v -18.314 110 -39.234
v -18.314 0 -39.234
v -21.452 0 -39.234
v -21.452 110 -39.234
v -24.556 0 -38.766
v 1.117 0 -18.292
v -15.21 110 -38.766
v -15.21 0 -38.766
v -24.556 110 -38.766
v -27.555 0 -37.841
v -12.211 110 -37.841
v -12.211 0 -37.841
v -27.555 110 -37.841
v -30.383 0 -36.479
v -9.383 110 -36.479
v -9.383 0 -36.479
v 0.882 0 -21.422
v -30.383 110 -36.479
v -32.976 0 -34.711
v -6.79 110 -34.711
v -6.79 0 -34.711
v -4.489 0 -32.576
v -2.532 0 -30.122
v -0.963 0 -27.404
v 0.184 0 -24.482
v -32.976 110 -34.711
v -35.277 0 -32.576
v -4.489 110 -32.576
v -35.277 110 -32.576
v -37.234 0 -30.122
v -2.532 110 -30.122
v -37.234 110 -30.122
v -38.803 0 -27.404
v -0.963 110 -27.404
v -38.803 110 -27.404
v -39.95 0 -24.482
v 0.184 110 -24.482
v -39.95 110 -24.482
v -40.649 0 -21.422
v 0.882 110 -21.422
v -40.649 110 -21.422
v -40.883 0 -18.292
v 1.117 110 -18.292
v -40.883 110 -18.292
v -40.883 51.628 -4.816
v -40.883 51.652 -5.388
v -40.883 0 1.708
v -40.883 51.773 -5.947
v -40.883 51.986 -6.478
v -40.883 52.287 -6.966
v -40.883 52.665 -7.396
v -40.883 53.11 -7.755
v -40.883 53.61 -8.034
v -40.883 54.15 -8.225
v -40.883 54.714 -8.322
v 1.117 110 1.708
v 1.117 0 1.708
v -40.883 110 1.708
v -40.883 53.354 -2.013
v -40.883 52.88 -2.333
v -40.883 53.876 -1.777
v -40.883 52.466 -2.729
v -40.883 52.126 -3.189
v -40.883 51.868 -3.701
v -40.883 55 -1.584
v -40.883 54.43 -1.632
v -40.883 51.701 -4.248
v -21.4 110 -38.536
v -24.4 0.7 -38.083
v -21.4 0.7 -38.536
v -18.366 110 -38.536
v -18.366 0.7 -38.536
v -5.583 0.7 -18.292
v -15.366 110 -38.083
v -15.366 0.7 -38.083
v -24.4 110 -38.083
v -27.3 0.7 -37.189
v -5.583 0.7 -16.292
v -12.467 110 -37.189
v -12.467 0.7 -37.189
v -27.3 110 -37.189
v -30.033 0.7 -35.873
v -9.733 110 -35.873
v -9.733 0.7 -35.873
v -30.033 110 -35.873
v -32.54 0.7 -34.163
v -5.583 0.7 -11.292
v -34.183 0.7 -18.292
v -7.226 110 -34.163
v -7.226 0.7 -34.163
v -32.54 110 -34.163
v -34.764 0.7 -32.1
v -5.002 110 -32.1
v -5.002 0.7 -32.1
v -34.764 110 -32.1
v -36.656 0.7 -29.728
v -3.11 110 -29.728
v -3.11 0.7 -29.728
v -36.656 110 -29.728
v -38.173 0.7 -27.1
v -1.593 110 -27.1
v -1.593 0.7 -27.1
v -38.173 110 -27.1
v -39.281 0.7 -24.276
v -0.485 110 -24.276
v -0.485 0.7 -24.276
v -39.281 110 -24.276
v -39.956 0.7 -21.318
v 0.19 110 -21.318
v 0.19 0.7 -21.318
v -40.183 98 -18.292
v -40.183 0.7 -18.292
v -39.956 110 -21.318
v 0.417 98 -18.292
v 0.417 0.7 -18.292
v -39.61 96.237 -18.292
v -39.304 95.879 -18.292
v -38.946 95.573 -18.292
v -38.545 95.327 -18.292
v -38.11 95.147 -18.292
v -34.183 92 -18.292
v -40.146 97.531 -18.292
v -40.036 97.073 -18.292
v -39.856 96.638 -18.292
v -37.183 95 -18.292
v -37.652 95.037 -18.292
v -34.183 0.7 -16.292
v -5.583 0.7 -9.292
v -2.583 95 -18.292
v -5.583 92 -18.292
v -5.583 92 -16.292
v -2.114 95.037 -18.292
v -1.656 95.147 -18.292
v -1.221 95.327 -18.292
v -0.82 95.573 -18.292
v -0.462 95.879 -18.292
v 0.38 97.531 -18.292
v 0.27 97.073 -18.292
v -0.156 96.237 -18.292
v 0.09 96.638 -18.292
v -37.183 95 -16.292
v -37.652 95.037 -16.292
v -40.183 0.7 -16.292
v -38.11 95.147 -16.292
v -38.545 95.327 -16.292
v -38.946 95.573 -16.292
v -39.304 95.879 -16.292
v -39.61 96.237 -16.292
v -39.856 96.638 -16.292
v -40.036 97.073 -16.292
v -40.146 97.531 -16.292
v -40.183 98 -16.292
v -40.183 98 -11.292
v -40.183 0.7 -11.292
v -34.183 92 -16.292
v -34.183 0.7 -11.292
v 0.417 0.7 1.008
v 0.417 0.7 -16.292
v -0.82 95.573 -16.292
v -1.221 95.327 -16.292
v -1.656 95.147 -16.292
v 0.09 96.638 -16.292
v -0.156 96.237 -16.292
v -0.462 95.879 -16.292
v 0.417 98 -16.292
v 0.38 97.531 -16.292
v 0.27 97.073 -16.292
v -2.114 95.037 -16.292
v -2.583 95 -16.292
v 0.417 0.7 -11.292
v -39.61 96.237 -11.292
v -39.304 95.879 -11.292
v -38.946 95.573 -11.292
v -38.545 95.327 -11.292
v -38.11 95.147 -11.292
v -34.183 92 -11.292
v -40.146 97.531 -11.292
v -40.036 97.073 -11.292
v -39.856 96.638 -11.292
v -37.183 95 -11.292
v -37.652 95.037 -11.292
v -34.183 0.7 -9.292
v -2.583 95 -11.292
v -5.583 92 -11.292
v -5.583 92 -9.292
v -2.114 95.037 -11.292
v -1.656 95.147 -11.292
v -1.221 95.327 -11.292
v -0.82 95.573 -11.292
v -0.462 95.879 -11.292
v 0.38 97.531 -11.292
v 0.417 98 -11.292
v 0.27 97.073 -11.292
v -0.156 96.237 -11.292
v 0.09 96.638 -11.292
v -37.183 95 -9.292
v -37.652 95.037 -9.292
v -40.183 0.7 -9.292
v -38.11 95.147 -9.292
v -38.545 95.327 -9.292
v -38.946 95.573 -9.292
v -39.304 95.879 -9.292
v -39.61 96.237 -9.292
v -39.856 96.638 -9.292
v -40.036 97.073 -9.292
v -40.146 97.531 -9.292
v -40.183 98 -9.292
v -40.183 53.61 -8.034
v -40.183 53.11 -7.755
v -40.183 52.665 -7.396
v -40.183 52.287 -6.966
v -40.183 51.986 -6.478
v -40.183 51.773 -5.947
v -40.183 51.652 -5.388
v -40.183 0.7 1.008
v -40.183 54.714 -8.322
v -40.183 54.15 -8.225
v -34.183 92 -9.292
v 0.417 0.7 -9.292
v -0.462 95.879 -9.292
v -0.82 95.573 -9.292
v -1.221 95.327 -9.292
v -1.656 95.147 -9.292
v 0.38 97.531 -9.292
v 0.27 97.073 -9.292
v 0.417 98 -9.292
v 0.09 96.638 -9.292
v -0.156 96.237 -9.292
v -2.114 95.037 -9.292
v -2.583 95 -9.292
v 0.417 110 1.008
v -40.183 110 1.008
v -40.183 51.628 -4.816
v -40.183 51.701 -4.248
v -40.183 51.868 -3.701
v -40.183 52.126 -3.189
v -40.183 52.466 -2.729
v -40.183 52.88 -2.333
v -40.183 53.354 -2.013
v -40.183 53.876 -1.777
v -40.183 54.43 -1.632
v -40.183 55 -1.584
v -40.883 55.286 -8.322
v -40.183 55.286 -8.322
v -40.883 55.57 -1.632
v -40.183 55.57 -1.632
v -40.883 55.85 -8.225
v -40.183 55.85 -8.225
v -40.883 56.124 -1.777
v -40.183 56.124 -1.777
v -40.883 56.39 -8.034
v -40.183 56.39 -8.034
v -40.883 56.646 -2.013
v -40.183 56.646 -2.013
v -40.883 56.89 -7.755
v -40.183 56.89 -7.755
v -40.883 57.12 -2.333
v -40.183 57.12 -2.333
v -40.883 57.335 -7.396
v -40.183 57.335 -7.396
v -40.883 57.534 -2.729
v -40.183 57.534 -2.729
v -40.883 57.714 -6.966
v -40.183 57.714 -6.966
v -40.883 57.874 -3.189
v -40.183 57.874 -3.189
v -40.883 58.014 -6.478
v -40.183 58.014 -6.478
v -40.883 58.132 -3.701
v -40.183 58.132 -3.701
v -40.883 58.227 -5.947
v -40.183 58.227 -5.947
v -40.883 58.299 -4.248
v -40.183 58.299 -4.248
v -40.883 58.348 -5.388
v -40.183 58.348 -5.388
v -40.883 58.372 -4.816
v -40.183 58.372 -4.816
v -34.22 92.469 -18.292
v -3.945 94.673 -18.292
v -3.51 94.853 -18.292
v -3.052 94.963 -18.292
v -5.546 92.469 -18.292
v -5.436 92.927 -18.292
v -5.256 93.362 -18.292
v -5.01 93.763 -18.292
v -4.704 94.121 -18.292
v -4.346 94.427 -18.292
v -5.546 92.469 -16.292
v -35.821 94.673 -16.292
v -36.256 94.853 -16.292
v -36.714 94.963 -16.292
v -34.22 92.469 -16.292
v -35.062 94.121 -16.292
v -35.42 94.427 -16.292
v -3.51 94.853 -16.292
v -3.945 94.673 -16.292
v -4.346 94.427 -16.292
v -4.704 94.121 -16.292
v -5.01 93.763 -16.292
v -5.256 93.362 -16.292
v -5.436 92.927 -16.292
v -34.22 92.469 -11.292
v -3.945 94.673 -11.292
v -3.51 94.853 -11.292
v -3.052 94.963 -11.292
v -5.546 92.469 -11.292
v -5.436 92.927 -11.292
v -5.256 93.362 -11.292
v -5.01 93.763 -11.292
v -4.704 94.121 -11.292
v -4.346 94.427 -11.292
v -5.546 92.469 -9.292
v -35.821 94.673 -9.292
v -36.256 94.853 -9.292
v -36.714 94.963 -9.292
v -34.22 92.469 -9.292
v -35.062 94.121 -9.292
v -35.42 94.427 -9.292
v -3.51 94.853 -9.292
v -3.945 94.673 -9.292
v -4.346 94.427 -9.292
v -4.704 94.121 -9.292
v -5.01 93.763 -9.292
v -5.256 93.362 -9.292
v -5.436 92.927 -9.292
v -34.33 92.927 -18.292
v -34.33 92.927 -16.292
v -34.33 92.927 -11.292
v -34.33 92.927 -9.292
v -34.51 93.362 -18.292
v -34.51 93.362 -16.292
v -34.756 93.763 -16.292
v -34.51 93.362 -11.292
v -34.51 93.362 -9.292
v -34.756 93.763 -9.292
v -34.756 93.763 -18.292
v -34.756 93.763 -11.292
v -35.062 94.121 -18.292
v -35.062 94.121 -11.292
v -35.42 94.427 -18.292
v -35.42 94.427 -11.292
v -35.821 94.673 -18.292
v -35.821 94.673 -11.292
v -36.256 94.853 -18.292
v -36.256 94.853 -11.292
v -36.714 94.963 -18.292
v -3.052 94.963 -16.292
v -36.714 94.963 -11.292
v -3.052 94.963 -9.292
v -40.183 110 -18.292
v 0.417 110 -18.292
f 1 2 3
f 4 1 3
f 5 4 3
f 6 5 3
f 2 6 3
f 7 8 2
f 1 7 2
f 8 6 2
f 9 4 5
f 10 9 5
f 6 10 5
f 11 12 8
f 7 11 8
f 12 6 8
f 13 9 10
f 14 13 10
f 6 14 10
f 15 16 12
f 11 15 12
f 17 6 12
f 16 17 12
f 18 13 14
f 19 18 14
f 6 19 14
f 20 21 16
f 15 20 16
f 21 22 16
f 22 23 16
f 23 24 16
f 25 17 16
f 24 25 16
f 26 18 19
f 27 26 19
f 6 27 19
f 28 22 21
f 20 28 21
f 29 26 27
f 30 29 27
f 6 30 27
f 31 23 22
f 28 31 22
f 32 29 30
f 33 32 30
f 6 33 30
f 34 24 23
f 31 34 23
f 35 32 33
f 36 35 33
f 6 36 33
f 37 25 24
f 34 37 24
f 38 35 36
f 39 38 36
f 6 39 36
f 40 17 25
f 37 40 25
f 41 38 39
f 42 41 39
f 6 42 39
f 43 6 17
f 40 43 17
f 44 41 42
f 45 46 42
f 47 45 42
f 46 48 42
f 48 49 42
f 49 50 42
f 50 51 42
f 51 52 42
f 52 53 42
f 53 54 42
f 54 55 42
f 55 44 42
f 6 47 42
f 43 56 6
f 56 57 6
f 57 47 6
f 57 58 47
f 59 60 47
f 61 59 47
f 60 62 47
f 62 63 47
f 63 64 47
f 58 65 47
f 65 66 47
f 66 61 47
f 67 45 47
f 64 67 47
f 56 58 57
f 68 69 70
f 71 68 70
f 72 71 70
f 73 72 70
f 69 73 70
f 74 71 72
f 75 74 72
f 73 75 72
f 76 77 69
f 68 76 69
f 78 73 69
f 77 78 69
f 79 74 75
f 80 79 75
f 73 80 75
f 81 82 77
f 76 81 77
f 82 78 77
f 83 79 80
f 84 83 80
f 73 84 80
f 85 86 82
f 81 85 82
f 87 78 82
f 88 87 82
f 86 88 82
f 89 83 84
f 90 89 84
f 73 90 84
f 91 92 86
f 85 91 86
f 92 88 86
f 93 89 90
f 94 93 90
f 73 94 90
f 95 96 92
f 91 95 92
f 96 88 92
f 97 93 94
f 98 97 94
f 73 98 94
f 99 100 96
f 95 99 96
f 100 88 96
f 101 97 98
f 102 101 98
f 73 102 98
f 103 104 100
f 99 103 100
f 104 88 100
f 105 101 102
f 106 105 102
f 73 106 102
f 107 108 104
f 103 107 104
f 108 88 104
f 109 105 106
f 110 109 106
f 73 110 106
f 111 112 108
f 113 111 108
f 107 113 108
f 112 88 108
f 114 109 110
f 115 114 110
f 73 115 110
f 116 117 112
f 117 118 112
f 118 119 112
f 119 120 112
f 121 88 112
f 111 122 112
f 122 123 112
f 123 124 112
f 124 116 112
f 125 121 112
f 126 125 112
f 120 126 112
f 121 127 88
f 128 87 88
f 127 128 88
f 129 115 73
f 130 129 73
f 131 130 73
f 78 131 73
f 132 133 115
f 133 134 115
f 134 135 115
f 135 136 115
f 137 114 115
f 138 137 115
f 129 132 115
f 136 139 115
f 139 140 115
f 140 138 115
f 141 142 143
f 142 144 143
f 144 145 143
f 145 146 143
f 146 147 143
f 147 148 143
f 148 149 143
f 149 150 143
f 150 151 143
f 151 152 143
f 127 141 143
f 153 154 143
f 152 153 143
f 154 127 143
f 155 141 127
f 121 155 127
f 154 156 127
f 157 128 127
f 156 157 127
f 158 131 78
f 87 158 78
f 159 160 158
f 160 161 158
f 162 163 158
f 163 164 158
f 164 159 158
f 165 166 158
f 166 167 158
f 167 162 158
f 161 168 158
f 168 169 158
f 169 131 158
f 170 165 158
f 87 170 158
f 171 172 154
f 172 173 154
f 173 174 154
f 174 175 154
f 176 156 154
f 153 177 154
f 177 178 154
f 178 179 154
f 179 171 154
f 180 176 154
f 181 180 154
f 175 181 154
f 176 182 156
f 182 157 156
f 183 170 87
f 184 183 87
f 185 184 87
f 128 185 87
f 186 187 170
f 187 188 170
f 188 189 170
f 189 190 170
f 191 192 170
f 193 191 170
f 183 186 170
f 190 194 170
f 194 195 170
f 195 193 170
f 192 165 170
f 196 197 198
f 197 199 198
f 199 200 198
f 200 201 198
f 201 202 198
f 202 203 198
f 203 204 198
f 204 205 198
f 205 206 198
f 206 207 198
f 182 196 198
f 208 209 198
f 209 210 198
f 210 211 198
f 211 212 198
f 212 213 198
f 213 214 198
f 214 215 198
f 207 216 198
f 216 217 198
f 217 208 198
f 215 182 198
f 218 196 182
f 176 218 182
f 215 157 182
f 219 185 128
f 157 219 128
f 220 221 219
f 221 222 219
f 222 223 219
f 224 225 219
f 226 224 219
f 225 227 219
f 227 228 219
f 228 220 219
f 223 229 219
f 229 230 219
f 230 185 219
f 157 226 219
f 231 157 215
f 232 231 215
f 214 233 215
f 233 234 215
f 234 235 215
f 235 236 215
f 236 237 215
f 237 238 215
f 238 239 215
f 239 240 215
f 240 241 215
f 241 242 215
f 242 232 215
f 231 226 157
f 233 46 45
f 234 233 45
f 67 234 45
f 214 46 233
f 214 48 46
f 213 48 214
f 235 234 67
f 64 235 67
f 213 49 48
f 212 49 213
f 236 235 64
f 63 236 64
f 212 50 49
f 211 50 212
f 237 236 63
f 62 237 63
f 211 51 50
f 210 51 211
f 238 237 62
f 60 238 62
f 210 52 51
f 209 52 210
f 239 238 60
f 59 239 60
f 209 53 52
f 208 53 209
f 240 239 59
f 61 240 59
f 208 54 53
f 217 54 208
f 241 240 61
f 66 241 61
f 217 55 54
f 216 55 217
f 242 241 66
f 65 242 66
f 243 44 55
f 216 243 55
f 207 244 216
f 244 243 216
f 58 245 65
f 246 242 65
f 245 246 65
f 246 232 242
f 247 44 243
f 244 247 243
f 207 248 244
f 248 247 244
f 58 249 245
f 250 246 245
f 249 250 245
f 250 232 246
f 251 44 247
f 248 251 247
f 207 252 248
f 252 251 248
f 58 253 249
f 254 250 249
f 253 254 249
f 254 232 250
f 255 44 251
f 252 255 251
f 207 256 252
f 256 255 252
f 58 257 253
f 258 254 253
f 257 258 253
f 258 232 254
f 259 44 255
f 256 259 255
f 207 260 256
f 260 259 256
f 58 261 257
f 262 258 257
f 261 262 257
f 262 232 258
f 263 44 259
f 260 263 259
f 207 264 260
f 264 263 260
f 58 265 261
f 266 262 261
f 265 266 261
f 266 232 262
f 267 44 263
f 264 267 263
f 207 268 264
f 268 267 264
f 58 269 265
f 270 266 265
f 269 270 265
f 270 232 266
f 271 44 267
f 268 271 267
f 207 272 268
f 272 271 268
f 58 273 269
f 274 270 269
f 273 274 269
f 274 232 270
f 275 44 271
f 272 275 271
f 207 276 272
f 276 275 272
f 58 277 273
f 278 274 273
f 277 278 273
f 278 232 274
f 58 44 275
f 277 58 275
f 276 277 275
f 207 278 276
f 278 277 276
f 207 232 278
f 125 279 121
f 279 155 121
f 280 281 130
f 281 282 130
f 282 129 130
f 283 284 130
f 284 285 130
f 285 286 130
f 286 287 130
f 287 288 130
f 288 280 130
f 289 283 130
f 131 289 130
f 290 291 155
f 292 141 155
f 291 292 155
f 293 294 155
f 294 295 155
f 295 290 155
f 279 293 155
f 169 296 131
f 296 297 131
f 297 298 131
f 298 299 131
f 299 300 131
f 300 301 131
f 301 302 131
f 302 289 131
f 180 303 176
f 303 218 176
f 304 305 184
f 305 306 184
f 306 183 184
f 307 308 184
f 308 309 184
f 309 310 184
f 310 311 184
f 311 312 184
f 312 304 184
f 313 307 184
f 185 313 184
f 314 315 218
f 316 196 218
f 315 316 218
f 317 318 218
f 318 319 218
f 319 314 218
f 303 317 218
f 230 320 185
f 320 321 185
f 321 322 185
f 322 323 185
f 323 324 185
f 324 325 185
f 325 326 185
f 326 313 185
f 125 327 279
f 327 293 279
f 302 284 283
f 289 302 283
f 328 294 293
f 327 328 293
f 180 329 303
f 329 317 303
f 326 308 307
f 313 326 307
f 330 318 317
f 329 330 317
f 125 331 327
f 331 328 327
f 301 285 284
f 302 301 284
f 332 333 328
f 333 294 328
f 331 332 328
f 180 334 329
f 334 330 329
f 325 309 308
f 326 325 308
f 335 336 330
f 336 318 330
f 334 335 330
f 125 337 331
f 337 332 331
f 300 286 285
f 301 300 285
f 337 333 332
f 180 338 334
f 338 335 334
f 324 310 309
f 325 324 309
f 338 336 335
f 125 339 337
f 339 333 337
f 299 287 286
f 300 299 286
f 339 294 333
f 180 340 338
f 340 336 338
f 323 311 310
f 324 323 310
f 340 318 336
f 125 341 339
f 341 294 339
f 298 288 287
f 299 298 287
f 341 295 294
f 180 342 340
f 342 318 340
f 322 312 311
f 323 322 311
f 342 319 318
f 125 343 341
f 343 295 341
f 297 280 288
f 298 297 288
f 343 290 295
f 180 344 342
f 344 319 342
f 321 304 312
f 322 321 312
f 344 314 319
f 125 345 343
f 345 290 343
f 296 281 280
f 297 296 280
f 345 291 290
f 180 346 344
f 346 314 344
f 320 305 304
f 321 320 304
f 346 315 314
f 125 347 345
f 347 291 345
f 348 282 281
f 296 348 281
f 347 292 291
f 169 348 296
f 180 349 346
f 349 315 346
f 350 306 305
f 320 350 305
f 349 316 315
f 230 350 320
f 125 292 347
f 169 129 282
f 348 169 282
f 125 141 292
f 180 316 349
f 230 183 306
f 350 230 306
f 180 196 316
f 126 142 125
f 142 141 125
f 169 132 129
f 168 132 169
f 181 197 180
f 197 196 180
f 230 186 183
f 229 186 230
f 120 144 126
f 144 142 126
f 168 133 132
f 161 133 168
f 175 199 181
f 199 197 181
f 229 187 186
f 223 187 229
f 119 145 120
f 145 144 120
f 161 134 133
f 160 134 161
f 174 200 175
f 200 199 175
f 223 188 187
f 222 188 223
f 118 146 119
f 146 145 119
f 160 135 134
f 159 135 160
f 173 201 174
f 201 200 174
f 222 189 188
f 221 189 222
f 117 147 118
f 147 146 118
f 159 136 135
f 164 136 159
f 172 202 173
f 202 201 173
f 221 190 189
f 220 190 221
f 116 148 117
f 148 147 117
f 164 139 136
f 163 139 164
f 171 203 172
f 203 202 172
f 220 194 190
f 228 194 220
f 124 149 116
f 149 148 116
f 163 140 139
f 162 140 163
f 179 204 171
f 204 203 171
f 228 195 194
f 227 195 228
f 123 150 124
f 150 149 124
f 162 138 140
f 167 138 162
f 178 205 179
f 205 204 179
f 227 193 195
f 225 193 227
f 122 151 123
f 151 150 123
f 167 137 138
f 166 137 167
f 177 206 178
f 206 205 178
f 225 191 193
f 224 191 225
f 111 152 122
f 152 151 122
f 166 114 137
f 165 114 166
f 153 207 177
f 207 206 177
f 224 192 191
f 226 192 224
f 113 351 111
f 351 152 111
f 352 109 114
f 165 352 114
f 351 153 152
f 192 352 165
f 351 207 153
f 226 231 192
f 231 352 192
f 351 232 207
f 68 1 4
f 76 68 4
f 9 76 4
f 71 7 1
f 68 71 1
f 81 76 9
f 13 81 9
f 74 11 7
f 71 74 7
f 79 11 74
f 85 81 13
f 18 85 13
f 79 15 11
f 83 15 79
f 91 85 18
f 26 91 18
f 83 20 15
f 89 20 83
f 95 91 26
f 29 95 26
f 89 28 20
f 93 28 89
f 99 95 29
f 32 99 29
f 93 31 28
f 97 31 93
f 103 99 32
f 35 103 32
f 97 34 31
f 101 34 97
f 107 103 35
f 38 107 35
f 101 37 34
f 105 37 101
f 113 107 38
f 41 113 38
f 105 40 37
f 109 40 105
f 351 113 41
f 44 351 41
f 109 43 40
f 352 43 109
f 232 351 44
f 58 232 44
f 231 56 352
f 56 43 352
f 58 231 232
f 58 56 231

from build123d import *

# Parameters (mm, degrees)
BOSS_EXTRUDE1_DEPTH = 110
CUT_EXTRUDE1_DEPTH  = 109.3
SKETCH3_R           = 3.375
CUT_EXTRUDE2_DEPTH  = 5
SKETCH4_W           = 40.6
SKETCH4_H           = 19.3
CUT_EXTRUDE3_DEPTH  = 15
FILLET1_R           = 3


with BuildPart() as part:
    # Sketch1 → Boss-Extrude1 (new body)
    with BuildSketch(Plane(origin=(0, 0, 0), x_dir=(1, 0, 0), z_dir=(0, 1, 0))):
        with BuildLine():
            Line((-40.883093525, -1.707733813), (1.116906475, -1.707733813))
            Line((1.116906475, -1.707733813), (1.116906475, 18.292266187))
            ThreePointArc((1.116906475, 18.292266187), (-19.883093525, 39.292266187), (-40.883093525, 18.292266187))
            Line((-40.883093525, 18.292266187), (-40.883093525, -1.707733813))
        make_face()
    extrude(amount=BOSS_EXTRUDE1_DEPTH)

    # Sketch2 → Cut-Extrude1 (cut)
    with BuildSketch(Plane(origin=(0, 110, 0), x_dir=(1, 0, 0), z_dir=(0, 1, 0))):
        with BuildLine():
            Line((-40.183093525, 16.292266187), (-40.183093525, 11.292266187))
            Line((-40.183093525, 11.292266187), (-34.183093525, 11.292266187))
            Line((-34.183093525, 11.292266187), (-34.183093525, 9.292266187))
            Line((-34.183093525, 9.292266187), (-40.183093525, 9.292266187))
            Line((-40.183093525, 9.292266187), (-40.183093525, -1.007733813))
            Line((-40.183093525, -1.007733813), (0.416906475, -1.007733813))
            Line((0.416906475, -1.007733813), (0.416906475, 9.292266187))
            Line((0.416906475, 9.292266187), (-5.583093525, 9.292266187))
            Line((-5.583093525, 9.292266187), (-5.583093525, 11.292266187))
            Line((-5.583093525, 11.292266187), (0.416906475, 11.292266187))
            Line((0.416906475, 11.292266187), (0.416906475, 16.292266187))
            Line((0.416906475, 16.292266187), (-5.583093525, 16.292266187))
            Line((-5.583093525, 16.292266187), (-5.583093525, 18.292266187))
            Line((-5.583093525, 18.292266187), (0.416906475, 18.292266187))
            ThreePointArc((0.416906475, 18.292266187), (-19.883093525, 38.592266187), (-40.183093525, 18.292266187))
            Line((-40.183093525, 18.292266187), (-34.183093525, 18.292266187))
            Line((-34.183093525, 18.292266187), (-34.183093525, 16.292266187))
            Line((-34.183093525, 16.292266187), (-40.183093525, 16.292266187))
        make_face()
    extrude(amount=-CUT_EXTRUDE1_DEPTH, mode=Mode.SUBTRACT)

    # Sketch3 → Cut-Extrude2 (cut)
    with BuildSketch(Plane.ZY.offset(40.883093525)):
        with Locations((-4.958932854, 55)):
            Circle(SKETCH3_R)
    extrude(amount=-CUT_EXTRUDE2_DEPTH, mode=Mode.SUBTRACT)

    # Sketch4 → Cut-Extrude3 (cut)
    with BuildSketch(Plane(origin=(0, 110, 0), x_dir=(1, 0, 0), z_dir=(0, 1, 0))):
        with Locations((-19.883093525, 8.642266187)):
            Rectangle(SKETCH4_W, SKETCH4_H)
    extrude(amount=-CUT_EXTRUDE3_DEPTH, mode=Mode.SUBTRACT)

    # Fillet1
    fillet1_edges = [part.edges().sort_by_distance(p)[0] for p in [
        (-40.183093525, 95, -17.292266187),
    ]]
    fillet(fillet1_edges, radius=FILLET1_R)
    fillet1_2_edges = [part.edges().sort_by_distance(p)[0] for p in [
        (-40.183093525, 95, -10.292266187),
    ]]
    fillet(fillet1_2_edges, radius=FILLET1_R)
    fillet1_3_edges = [part.edges().sort_by_distance(p)[0] for p in [
        (0.416906475, 95, -10.292266187),
    ]]
    fillet(fillet1_3_edges, radius=FILLET1_R)
    fillet1_4_edges = [part.edges().sort_by_distance(p)[0] for p in [
        (0.416906475, 95, -17.292266187),
    ]]
    fillet(fillet1_4_edges, radius=FILLET1_R)
    fillet1_5_edges = [part.edges().sort_by_distance(p)[0] for p in [
        (-5.583093525, 95, -17.292266187),
    ]]
    fillet(fillet1_5_edges, radius=FILLET1_R - 0.0001)  # a hair under: the kernel refuses the full size
    fillet1_6_edges = [part.edges().sort_by_distance(p)[0] for p in [
        (-5.583093525, 95, -10.292266187),
    ]]
    fillet(fillet1_6_edges, radius=FILLET1_R - 0.0001)  # a hair under: the kernel refuses the full size
    fillet1_7_edges = [part.edges().sort_by_distance(p)[0] for p in [
        (-34.183093525, 95, -10.292266187),
    ]]
    fillet(fillet1_7_edges, radius=FILLET1_R - 0.0001)  # a hair under: the kernel refuses the full size
    fillet1_8_edges = [part.edges().sort_by_distance(p)[0] for p in [
        (-34.183093525, 95, -17.292266187),
    ]]
    fillet(fillet1_8_edges, radius=FILLET1_R - 0.0001)  # a hair under: the kernel refuses the full size


solid = part.part
